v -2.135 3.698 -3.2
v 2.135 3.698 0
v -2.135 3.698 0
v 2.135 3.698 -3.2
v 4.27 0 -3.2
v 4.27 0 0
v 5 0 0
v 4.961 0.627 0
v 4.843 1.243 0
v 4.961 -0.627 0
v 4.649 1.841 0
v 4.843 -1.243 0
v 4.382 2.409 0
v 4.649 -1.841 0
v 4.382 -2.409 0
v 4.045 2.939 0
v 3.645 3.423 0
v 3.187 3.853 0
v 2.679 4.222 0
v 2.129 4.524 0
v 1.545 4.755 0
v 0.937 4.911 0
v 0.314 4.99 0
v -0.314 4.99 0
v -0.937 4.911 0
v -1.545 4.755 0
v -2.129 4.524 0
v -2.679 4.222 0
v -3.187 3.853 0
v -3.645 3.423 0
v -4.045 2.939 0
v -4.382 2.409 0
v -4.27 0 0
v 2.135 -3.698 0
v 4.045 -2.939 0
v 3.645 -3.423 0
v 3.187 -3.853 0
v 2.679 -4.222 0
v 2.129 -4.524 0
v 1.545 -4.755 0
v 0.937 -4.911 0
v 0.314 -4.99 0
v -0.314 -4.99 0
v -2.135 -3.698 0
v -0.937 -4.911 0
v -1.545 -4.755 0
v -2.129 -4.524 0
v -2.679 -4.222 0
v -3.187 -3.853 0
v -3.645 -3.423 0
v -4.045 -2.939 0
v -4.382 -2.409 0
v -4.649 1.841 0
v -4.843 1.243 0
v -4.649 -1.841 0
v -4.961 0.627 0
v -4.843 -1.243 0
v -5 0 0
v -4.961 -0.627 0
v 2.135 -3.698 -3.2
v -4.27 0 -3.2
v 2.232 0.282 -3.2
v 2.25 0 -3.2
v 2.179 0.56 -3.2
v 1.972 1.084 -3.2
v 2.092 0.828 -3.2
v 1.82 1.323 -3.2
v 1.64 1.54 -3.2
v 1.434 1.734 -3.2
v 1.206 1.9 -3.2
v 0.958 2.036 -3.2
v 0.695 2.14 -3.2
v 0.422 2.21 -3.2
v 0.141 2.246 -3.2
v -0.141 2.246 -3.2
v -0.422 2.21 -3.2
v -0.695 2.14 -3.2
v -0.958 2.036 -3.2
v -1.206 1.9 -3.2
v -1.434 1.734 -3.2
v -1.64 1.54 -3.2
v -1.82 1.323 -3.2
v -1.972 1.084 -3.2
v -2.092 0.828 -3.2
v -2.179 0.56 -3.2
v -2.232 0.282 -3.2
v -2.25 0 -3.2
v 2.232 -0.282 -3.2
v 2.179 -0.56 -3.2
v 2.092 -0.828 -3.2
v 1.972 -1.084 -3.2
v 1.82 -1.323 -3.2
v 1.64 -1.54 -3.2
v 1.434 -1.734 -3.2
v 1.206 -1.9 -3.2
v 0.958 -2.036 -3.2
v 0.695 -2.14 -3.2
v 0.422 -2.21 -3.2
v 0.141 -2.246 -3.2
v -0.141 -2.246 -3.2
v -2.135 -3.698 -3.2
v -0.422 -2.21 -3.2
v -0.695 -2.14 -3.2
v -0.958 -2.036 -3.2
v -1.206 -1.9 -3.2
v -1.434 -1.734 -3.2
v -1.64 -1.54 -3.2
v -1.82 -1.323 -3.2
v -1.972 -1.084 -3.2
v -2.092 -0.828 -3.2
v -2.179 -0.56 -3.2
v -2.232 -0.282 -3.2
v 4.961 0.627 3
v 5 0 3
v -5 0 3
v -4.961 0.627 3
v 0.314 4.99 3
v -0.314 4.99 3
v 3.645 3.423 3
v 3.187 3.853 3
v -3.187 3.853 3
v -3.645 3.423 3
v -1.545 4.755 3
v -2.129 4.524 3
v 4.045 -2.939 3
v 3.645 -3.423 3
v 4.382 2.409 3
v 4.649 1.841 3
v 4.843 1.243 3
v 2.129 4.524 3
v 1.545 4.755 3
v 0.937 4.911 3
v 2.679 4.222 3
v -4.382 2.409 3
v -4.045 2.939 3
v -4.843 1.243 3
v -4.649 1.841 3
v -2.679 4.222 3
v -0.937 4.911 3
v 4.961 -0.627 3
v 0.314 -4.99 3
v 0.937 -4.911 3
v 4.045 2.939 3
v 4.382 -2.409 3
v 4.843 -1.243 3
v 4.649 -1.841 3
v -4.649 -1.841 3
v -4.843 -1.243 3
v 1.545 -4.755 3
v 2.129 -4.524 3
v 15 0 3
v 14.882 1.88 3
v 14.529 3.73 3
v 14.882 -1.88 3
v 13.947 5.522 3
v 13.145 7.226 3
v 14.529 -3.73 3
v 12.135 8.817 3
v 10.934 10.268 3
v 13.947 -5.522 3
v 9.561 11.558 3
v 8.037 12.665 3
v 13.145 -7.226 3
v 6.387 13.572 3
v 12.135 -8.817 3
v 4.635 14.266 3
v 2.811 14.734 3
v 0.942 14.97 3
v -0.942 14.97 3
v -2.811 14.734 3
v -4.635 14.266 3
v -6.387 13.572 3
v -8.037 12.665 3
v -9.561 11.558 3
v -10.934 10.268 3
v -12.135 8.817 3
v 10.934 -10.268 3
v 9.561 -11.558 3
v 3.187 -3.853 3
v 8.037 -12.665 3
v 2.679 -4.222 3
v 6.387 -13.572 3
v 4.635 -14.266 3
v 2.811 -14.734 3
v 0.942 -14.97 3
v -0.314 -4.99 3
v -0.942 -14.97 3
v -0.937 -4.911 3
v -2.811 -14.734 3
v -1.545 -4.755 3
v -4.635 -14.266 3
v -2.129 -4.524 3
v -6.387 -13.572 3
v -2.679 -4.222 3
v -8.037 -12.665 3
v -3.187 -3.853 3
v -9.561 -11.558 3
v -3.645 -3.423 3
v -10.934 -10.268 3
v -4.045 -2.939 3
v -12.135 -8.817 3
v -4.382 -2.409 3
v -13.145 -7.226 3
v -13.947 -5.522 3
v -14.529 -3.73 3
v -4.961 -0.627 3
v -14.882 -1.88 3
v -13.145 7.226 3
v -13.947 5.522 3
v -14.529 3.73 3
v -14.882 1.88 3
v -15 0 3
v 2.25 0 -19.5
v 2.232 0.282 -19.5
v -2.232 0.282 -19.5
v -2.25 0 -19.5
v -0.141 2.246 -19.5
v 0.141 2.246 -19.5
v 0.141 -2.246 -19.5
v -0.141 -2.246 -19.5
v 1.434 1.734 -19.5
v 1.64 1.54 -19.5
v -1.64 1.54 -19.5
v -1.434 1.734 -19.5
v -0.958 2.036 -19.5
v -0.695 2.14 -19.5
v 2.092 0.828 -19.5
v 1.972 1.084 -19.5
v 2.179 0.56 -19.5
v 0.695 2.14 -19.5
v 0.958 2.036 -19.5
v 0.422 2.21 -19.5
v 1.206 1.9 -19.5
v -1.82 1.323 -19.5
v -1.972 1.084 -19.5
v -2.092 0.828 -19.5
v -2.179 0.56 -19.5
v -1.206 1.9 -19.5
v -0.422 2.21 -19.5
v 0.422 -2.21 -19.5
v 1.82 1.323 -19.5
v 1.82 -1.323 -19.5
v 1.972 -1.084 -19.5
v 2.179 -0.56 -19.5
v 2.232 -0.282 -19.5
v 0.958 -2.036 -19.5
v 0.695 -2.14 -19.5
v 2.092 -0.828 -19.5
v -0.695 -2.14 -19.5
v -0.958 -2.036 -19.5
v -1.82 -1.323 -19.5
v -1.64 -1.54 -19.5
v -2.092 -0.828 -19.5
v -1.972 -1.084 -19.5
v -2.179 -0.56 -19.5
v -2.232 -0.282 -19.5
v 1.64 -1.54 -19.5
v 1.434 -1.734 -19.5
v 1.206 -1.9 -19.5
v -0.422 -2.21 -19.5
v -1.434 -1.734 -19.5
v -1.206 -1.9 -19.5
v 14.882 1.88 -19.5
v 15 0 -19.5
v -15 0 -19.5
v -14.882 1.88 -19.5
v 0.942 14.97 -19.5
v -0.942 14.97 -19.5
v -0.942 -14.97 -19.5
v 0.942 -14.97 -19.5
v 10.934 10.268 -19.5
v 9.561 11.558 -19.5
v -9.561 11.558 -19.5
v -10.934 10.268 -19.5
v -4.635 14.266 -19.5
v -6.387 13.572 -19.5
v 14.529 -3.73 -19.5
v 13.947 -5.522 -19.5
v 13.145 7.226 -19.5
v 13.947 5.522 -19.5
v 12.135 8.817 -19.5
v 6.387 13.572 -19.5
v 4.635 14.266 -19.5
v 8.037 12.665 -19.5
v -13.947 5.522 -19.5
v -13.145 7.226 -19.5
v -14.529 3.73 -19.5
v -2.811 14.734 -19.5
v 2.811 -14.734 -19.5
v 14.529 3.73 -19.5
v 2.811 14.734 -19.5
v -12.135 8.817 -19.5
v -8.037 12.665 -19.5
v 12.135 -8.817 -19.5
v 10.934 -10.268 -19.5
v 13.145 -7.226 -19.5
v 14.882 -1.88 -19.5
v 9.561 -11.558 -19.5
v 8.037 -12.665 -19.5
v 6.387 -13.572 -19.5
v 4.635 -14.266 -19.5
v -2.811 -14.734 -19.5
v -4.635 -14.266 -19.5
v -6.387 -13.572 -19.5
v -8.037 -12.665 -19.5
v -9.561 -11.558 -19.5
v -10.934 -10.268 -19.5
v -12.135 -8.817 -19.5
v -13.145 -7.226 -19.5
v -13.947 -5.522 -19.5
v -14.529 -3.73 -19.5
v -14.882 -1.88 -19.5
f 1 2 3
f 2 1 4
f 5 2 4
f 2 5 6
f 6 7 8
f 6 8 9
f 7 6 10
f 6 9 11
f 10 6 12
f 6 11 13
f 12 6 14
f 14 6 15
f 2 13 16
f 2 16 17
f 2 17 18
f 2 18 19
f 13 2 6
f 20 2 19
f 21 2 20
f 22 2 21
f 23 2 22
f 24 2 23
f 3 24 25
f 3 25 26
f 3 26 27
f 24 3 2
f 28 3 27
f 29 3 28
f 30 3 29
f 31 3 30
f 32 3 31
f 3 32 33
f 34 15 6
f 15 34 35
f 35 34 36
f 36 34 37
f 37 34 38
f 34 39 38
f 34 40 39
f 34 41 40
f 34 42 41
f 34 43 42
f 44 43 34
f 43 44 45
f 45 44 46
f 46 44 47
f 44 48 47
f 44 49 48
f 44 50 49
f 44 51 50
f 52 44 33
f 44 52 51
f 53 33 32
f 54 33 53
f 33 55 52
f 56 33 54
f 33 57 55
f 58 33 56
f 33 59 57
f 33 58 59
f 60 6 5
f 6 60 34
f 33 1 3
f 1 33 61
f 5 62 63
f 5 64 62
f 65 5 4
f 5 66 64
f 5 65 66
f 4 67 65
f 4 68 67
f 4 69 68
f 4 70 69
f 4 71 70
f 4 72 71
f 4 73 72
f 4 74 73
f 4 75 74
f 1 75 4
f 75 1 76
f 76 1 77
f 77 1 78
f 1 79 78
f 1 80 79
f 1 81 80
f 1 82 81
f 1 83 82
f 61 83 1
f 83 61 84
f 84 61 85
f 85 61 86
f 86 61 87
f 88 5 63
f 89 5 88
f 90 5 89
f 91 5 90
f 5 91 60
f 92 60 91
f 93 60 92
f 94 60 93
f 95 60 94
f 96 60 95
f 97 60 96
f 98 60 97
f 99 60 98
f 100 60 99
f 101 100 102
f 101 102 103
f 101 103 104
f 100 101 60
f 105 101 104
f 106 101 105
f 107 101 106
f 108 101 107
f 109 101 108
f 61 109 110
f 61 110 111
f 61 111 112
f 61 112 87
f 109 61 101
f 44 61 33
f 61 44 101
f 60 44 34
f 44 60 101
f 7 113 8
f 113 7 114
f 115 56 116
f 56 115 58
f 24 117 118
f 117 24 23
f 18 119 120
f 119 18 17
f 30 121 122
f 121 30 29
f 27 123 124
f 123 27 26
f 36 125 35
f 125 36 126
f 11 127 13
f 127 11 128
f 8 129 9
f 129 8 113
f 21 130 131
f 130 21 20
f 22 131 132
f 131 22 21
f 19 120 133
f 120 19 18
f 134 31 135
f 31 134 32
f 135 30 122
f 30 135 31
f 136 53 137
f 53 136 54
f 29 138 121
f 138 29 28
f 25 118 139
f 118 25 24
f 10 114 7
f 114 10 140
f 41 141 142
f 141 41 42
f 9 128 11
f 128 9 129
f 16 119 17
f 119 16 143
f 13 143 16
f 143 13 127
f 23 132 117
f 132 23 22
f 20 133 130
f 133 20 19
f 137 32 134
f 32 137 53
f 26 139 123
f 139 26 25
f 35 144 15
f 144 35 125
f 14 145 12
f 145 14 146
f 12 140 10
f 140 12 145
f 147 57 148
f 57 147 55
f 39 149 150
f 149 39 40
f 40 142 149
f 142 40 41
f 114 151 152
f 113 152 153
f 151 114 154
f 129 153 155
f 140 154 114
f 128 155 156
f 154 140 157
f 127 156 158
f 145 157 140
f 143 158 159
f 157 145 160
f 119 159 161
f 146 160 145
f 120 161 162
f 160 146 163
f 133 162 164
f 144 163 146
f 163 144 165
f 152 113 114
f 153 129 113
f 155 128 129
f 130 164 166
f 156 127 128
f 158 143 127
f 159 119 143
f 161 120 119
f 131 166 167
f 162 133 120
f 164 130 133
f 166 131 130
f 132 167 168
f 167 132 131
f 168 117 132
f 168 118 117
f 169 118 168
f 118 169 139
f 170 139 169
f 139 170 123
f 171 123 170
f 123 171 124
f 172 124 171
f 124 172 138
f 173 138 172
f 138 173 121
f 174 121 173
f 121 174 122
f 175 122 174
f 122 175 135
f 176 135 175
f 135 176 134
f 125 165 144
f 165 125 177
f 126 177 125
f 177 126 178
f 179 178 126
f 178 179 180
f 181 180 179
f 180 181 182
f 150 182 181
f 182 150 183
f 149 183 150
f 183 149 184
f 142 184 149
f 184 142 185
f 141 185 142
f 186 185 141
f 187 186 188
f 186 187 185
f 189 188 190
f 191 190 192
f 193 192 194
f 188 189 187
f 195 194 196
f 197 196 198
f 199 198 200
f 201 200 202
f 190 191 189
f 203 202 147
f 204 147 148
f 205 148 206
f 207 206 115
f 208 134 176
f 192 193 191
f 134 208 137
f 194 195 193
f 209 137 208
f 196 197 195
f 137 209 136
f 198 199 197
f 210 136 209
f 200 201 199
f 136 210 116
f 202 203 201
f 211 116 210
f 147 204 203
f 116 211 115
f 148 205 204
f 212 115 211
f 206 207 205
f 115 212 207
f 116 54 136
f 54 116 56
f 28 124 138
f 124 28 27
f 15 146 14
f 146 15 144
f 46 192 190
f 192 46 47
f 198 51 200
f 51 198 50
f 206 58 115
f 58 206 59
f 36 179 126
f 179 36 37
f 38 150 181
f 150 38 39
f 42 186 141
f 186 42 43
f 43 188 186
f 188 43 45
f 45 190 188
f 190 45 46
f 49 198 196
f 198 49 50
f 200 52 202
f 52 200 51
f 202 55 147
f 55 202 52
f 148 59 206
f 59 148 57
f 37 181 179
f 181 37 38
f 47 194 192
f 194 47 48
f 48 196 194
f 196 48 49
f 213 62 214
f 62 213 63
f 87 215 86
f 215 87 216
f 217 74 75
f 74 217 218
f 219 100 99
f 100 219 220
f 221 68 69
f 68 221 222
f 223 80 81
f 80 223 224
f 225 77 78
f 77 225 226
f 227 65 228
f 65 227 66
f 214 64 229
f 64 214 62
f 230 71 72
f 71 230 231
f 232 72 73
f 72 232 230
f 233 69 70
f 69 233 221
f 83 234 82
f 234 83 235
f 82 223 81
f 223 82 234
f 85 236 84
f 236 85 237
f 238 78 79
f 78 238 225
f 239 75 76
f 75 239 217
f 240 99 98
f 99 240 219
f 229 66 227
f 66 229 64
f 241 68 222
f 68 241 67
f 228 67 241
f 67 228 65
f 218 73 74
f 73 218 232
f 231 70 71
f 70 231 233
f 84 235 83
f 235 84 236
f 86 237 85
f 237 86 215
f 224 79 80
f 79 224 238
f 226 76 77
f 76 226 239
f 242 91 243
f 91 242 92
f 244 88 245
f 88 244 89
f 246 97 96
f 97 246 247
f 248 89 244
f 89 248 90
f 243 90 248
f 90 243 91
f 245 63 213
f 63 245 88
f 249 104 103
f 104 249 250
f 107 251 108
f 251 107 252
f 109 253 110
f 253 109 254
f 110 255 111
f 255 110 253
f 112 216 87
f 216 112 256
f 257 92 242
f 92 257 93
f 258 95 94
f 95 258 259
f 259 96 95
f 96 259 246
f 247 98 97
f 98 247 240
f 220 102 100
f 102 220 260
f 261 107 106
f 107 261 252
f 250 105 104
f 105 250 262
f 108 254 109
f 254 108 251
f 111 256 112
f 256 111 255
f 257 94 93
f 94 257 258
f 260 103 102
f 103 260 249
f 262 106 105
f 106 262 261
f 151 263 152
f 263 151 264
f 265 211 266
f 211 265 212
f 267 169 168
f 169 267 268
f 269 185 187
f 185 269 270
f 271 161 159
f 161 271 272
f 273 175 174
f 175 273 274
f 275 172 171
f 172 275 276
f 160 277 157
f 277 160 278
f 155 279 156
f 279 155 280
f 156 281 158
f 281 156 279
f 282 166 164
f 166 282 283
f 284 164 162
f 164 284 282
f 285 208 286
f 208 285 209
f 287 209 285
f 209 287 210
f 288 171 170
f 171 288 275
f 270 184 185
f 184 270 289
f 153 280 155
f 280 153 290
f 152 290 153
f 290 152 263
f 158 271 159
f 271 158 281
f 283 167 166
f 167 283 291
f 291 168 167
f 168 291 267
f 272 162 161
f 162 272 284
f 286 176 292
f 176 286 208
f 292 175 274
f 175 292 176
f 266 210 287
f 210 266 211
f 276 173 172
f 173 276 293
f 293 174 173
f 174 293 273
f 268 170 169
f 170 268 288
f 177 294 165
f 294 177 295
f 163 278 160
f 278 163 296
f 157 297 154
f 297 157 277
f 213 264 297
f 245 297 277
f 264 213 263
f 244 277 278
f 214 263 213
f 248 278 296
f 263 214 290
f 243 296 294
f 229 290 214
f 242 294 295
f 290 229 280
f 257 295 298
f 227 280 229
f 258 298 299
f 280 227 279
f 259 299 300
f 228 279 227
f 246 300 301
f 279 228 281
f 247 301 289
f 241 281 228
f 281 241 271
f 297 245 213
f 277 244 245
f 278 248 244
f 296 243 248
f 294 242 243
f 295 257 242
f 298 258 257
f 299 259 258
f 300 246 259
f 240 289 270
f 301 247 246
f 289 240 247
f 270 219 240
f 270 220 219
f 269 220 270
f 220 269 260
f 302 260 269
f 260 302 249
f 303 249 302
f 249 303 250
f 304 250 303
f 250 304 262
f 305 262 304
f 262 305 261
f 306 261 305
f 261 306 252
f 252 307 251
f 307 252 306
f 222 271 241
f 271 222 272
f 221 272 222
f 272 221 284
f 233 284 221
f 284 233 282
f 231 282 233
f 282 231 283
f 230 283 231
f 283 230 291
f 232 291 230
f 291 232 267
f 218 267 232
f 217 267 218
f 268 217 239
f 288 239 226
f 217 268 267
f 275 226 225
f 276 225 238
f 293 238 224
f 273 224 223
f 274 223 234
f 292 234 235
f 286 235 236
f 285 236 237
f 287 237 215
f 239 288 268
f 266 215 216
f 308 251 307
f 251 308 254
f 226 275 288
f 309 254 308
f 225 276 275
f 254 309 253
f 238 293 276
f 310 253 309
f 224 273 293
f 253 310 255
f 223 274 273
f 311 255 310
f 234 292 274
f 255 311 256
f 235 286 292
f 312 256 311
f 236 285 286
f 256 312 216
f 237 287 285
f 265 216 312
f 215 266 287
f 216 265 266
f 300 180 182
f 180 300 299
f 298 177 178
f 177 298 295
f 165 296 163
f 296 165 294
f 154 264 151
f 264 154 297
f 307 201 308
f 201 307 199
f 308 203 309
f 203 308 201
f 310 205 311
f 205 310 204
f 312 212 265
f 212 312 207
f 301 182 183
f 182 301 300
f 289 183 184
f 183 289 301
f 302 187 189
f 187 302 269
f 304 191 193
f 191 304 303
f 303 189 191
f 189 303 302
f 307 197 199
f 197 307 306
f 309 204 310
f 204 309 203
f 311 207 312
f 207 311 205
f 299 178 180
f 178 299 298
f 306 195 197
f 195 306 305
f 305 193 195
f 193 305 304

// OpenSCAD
$fn = 50;


difference() {
	union() {
		translate(v = [0, 0, -19.5000000000]) {
			cylinder(h = 22.5000000000, r = 15.0000000000);
		}
	}
	union() {
		translate(v = [0, 0, 0]) {
			rotate(a = [0, 0, 0]) {
				difference() {
					union() {
						translate(v = [0, 0, -3.2000000000]) {
							linear_extrude(height = 3.2000000000) {
								polygon(points = [[4.2698000000, 0.0000000000], [2.1349000000, 3.6977552691], [-2.1349000000, 3.6977552691], [-4.2698000000, 0.0000000000], [-2.1349000000, -3.6977552691], [2.1349000000, -3.6977552691]]);
							}
						}
					}
					union();
				}
			}
		}
		#cylinder(h = 3, r = 5.0000000000);
		#translate(v = [0, 0, -100.0000000000]) {
			cylinder(h = 200, r = 2.2500000000);
		}
	}
}
